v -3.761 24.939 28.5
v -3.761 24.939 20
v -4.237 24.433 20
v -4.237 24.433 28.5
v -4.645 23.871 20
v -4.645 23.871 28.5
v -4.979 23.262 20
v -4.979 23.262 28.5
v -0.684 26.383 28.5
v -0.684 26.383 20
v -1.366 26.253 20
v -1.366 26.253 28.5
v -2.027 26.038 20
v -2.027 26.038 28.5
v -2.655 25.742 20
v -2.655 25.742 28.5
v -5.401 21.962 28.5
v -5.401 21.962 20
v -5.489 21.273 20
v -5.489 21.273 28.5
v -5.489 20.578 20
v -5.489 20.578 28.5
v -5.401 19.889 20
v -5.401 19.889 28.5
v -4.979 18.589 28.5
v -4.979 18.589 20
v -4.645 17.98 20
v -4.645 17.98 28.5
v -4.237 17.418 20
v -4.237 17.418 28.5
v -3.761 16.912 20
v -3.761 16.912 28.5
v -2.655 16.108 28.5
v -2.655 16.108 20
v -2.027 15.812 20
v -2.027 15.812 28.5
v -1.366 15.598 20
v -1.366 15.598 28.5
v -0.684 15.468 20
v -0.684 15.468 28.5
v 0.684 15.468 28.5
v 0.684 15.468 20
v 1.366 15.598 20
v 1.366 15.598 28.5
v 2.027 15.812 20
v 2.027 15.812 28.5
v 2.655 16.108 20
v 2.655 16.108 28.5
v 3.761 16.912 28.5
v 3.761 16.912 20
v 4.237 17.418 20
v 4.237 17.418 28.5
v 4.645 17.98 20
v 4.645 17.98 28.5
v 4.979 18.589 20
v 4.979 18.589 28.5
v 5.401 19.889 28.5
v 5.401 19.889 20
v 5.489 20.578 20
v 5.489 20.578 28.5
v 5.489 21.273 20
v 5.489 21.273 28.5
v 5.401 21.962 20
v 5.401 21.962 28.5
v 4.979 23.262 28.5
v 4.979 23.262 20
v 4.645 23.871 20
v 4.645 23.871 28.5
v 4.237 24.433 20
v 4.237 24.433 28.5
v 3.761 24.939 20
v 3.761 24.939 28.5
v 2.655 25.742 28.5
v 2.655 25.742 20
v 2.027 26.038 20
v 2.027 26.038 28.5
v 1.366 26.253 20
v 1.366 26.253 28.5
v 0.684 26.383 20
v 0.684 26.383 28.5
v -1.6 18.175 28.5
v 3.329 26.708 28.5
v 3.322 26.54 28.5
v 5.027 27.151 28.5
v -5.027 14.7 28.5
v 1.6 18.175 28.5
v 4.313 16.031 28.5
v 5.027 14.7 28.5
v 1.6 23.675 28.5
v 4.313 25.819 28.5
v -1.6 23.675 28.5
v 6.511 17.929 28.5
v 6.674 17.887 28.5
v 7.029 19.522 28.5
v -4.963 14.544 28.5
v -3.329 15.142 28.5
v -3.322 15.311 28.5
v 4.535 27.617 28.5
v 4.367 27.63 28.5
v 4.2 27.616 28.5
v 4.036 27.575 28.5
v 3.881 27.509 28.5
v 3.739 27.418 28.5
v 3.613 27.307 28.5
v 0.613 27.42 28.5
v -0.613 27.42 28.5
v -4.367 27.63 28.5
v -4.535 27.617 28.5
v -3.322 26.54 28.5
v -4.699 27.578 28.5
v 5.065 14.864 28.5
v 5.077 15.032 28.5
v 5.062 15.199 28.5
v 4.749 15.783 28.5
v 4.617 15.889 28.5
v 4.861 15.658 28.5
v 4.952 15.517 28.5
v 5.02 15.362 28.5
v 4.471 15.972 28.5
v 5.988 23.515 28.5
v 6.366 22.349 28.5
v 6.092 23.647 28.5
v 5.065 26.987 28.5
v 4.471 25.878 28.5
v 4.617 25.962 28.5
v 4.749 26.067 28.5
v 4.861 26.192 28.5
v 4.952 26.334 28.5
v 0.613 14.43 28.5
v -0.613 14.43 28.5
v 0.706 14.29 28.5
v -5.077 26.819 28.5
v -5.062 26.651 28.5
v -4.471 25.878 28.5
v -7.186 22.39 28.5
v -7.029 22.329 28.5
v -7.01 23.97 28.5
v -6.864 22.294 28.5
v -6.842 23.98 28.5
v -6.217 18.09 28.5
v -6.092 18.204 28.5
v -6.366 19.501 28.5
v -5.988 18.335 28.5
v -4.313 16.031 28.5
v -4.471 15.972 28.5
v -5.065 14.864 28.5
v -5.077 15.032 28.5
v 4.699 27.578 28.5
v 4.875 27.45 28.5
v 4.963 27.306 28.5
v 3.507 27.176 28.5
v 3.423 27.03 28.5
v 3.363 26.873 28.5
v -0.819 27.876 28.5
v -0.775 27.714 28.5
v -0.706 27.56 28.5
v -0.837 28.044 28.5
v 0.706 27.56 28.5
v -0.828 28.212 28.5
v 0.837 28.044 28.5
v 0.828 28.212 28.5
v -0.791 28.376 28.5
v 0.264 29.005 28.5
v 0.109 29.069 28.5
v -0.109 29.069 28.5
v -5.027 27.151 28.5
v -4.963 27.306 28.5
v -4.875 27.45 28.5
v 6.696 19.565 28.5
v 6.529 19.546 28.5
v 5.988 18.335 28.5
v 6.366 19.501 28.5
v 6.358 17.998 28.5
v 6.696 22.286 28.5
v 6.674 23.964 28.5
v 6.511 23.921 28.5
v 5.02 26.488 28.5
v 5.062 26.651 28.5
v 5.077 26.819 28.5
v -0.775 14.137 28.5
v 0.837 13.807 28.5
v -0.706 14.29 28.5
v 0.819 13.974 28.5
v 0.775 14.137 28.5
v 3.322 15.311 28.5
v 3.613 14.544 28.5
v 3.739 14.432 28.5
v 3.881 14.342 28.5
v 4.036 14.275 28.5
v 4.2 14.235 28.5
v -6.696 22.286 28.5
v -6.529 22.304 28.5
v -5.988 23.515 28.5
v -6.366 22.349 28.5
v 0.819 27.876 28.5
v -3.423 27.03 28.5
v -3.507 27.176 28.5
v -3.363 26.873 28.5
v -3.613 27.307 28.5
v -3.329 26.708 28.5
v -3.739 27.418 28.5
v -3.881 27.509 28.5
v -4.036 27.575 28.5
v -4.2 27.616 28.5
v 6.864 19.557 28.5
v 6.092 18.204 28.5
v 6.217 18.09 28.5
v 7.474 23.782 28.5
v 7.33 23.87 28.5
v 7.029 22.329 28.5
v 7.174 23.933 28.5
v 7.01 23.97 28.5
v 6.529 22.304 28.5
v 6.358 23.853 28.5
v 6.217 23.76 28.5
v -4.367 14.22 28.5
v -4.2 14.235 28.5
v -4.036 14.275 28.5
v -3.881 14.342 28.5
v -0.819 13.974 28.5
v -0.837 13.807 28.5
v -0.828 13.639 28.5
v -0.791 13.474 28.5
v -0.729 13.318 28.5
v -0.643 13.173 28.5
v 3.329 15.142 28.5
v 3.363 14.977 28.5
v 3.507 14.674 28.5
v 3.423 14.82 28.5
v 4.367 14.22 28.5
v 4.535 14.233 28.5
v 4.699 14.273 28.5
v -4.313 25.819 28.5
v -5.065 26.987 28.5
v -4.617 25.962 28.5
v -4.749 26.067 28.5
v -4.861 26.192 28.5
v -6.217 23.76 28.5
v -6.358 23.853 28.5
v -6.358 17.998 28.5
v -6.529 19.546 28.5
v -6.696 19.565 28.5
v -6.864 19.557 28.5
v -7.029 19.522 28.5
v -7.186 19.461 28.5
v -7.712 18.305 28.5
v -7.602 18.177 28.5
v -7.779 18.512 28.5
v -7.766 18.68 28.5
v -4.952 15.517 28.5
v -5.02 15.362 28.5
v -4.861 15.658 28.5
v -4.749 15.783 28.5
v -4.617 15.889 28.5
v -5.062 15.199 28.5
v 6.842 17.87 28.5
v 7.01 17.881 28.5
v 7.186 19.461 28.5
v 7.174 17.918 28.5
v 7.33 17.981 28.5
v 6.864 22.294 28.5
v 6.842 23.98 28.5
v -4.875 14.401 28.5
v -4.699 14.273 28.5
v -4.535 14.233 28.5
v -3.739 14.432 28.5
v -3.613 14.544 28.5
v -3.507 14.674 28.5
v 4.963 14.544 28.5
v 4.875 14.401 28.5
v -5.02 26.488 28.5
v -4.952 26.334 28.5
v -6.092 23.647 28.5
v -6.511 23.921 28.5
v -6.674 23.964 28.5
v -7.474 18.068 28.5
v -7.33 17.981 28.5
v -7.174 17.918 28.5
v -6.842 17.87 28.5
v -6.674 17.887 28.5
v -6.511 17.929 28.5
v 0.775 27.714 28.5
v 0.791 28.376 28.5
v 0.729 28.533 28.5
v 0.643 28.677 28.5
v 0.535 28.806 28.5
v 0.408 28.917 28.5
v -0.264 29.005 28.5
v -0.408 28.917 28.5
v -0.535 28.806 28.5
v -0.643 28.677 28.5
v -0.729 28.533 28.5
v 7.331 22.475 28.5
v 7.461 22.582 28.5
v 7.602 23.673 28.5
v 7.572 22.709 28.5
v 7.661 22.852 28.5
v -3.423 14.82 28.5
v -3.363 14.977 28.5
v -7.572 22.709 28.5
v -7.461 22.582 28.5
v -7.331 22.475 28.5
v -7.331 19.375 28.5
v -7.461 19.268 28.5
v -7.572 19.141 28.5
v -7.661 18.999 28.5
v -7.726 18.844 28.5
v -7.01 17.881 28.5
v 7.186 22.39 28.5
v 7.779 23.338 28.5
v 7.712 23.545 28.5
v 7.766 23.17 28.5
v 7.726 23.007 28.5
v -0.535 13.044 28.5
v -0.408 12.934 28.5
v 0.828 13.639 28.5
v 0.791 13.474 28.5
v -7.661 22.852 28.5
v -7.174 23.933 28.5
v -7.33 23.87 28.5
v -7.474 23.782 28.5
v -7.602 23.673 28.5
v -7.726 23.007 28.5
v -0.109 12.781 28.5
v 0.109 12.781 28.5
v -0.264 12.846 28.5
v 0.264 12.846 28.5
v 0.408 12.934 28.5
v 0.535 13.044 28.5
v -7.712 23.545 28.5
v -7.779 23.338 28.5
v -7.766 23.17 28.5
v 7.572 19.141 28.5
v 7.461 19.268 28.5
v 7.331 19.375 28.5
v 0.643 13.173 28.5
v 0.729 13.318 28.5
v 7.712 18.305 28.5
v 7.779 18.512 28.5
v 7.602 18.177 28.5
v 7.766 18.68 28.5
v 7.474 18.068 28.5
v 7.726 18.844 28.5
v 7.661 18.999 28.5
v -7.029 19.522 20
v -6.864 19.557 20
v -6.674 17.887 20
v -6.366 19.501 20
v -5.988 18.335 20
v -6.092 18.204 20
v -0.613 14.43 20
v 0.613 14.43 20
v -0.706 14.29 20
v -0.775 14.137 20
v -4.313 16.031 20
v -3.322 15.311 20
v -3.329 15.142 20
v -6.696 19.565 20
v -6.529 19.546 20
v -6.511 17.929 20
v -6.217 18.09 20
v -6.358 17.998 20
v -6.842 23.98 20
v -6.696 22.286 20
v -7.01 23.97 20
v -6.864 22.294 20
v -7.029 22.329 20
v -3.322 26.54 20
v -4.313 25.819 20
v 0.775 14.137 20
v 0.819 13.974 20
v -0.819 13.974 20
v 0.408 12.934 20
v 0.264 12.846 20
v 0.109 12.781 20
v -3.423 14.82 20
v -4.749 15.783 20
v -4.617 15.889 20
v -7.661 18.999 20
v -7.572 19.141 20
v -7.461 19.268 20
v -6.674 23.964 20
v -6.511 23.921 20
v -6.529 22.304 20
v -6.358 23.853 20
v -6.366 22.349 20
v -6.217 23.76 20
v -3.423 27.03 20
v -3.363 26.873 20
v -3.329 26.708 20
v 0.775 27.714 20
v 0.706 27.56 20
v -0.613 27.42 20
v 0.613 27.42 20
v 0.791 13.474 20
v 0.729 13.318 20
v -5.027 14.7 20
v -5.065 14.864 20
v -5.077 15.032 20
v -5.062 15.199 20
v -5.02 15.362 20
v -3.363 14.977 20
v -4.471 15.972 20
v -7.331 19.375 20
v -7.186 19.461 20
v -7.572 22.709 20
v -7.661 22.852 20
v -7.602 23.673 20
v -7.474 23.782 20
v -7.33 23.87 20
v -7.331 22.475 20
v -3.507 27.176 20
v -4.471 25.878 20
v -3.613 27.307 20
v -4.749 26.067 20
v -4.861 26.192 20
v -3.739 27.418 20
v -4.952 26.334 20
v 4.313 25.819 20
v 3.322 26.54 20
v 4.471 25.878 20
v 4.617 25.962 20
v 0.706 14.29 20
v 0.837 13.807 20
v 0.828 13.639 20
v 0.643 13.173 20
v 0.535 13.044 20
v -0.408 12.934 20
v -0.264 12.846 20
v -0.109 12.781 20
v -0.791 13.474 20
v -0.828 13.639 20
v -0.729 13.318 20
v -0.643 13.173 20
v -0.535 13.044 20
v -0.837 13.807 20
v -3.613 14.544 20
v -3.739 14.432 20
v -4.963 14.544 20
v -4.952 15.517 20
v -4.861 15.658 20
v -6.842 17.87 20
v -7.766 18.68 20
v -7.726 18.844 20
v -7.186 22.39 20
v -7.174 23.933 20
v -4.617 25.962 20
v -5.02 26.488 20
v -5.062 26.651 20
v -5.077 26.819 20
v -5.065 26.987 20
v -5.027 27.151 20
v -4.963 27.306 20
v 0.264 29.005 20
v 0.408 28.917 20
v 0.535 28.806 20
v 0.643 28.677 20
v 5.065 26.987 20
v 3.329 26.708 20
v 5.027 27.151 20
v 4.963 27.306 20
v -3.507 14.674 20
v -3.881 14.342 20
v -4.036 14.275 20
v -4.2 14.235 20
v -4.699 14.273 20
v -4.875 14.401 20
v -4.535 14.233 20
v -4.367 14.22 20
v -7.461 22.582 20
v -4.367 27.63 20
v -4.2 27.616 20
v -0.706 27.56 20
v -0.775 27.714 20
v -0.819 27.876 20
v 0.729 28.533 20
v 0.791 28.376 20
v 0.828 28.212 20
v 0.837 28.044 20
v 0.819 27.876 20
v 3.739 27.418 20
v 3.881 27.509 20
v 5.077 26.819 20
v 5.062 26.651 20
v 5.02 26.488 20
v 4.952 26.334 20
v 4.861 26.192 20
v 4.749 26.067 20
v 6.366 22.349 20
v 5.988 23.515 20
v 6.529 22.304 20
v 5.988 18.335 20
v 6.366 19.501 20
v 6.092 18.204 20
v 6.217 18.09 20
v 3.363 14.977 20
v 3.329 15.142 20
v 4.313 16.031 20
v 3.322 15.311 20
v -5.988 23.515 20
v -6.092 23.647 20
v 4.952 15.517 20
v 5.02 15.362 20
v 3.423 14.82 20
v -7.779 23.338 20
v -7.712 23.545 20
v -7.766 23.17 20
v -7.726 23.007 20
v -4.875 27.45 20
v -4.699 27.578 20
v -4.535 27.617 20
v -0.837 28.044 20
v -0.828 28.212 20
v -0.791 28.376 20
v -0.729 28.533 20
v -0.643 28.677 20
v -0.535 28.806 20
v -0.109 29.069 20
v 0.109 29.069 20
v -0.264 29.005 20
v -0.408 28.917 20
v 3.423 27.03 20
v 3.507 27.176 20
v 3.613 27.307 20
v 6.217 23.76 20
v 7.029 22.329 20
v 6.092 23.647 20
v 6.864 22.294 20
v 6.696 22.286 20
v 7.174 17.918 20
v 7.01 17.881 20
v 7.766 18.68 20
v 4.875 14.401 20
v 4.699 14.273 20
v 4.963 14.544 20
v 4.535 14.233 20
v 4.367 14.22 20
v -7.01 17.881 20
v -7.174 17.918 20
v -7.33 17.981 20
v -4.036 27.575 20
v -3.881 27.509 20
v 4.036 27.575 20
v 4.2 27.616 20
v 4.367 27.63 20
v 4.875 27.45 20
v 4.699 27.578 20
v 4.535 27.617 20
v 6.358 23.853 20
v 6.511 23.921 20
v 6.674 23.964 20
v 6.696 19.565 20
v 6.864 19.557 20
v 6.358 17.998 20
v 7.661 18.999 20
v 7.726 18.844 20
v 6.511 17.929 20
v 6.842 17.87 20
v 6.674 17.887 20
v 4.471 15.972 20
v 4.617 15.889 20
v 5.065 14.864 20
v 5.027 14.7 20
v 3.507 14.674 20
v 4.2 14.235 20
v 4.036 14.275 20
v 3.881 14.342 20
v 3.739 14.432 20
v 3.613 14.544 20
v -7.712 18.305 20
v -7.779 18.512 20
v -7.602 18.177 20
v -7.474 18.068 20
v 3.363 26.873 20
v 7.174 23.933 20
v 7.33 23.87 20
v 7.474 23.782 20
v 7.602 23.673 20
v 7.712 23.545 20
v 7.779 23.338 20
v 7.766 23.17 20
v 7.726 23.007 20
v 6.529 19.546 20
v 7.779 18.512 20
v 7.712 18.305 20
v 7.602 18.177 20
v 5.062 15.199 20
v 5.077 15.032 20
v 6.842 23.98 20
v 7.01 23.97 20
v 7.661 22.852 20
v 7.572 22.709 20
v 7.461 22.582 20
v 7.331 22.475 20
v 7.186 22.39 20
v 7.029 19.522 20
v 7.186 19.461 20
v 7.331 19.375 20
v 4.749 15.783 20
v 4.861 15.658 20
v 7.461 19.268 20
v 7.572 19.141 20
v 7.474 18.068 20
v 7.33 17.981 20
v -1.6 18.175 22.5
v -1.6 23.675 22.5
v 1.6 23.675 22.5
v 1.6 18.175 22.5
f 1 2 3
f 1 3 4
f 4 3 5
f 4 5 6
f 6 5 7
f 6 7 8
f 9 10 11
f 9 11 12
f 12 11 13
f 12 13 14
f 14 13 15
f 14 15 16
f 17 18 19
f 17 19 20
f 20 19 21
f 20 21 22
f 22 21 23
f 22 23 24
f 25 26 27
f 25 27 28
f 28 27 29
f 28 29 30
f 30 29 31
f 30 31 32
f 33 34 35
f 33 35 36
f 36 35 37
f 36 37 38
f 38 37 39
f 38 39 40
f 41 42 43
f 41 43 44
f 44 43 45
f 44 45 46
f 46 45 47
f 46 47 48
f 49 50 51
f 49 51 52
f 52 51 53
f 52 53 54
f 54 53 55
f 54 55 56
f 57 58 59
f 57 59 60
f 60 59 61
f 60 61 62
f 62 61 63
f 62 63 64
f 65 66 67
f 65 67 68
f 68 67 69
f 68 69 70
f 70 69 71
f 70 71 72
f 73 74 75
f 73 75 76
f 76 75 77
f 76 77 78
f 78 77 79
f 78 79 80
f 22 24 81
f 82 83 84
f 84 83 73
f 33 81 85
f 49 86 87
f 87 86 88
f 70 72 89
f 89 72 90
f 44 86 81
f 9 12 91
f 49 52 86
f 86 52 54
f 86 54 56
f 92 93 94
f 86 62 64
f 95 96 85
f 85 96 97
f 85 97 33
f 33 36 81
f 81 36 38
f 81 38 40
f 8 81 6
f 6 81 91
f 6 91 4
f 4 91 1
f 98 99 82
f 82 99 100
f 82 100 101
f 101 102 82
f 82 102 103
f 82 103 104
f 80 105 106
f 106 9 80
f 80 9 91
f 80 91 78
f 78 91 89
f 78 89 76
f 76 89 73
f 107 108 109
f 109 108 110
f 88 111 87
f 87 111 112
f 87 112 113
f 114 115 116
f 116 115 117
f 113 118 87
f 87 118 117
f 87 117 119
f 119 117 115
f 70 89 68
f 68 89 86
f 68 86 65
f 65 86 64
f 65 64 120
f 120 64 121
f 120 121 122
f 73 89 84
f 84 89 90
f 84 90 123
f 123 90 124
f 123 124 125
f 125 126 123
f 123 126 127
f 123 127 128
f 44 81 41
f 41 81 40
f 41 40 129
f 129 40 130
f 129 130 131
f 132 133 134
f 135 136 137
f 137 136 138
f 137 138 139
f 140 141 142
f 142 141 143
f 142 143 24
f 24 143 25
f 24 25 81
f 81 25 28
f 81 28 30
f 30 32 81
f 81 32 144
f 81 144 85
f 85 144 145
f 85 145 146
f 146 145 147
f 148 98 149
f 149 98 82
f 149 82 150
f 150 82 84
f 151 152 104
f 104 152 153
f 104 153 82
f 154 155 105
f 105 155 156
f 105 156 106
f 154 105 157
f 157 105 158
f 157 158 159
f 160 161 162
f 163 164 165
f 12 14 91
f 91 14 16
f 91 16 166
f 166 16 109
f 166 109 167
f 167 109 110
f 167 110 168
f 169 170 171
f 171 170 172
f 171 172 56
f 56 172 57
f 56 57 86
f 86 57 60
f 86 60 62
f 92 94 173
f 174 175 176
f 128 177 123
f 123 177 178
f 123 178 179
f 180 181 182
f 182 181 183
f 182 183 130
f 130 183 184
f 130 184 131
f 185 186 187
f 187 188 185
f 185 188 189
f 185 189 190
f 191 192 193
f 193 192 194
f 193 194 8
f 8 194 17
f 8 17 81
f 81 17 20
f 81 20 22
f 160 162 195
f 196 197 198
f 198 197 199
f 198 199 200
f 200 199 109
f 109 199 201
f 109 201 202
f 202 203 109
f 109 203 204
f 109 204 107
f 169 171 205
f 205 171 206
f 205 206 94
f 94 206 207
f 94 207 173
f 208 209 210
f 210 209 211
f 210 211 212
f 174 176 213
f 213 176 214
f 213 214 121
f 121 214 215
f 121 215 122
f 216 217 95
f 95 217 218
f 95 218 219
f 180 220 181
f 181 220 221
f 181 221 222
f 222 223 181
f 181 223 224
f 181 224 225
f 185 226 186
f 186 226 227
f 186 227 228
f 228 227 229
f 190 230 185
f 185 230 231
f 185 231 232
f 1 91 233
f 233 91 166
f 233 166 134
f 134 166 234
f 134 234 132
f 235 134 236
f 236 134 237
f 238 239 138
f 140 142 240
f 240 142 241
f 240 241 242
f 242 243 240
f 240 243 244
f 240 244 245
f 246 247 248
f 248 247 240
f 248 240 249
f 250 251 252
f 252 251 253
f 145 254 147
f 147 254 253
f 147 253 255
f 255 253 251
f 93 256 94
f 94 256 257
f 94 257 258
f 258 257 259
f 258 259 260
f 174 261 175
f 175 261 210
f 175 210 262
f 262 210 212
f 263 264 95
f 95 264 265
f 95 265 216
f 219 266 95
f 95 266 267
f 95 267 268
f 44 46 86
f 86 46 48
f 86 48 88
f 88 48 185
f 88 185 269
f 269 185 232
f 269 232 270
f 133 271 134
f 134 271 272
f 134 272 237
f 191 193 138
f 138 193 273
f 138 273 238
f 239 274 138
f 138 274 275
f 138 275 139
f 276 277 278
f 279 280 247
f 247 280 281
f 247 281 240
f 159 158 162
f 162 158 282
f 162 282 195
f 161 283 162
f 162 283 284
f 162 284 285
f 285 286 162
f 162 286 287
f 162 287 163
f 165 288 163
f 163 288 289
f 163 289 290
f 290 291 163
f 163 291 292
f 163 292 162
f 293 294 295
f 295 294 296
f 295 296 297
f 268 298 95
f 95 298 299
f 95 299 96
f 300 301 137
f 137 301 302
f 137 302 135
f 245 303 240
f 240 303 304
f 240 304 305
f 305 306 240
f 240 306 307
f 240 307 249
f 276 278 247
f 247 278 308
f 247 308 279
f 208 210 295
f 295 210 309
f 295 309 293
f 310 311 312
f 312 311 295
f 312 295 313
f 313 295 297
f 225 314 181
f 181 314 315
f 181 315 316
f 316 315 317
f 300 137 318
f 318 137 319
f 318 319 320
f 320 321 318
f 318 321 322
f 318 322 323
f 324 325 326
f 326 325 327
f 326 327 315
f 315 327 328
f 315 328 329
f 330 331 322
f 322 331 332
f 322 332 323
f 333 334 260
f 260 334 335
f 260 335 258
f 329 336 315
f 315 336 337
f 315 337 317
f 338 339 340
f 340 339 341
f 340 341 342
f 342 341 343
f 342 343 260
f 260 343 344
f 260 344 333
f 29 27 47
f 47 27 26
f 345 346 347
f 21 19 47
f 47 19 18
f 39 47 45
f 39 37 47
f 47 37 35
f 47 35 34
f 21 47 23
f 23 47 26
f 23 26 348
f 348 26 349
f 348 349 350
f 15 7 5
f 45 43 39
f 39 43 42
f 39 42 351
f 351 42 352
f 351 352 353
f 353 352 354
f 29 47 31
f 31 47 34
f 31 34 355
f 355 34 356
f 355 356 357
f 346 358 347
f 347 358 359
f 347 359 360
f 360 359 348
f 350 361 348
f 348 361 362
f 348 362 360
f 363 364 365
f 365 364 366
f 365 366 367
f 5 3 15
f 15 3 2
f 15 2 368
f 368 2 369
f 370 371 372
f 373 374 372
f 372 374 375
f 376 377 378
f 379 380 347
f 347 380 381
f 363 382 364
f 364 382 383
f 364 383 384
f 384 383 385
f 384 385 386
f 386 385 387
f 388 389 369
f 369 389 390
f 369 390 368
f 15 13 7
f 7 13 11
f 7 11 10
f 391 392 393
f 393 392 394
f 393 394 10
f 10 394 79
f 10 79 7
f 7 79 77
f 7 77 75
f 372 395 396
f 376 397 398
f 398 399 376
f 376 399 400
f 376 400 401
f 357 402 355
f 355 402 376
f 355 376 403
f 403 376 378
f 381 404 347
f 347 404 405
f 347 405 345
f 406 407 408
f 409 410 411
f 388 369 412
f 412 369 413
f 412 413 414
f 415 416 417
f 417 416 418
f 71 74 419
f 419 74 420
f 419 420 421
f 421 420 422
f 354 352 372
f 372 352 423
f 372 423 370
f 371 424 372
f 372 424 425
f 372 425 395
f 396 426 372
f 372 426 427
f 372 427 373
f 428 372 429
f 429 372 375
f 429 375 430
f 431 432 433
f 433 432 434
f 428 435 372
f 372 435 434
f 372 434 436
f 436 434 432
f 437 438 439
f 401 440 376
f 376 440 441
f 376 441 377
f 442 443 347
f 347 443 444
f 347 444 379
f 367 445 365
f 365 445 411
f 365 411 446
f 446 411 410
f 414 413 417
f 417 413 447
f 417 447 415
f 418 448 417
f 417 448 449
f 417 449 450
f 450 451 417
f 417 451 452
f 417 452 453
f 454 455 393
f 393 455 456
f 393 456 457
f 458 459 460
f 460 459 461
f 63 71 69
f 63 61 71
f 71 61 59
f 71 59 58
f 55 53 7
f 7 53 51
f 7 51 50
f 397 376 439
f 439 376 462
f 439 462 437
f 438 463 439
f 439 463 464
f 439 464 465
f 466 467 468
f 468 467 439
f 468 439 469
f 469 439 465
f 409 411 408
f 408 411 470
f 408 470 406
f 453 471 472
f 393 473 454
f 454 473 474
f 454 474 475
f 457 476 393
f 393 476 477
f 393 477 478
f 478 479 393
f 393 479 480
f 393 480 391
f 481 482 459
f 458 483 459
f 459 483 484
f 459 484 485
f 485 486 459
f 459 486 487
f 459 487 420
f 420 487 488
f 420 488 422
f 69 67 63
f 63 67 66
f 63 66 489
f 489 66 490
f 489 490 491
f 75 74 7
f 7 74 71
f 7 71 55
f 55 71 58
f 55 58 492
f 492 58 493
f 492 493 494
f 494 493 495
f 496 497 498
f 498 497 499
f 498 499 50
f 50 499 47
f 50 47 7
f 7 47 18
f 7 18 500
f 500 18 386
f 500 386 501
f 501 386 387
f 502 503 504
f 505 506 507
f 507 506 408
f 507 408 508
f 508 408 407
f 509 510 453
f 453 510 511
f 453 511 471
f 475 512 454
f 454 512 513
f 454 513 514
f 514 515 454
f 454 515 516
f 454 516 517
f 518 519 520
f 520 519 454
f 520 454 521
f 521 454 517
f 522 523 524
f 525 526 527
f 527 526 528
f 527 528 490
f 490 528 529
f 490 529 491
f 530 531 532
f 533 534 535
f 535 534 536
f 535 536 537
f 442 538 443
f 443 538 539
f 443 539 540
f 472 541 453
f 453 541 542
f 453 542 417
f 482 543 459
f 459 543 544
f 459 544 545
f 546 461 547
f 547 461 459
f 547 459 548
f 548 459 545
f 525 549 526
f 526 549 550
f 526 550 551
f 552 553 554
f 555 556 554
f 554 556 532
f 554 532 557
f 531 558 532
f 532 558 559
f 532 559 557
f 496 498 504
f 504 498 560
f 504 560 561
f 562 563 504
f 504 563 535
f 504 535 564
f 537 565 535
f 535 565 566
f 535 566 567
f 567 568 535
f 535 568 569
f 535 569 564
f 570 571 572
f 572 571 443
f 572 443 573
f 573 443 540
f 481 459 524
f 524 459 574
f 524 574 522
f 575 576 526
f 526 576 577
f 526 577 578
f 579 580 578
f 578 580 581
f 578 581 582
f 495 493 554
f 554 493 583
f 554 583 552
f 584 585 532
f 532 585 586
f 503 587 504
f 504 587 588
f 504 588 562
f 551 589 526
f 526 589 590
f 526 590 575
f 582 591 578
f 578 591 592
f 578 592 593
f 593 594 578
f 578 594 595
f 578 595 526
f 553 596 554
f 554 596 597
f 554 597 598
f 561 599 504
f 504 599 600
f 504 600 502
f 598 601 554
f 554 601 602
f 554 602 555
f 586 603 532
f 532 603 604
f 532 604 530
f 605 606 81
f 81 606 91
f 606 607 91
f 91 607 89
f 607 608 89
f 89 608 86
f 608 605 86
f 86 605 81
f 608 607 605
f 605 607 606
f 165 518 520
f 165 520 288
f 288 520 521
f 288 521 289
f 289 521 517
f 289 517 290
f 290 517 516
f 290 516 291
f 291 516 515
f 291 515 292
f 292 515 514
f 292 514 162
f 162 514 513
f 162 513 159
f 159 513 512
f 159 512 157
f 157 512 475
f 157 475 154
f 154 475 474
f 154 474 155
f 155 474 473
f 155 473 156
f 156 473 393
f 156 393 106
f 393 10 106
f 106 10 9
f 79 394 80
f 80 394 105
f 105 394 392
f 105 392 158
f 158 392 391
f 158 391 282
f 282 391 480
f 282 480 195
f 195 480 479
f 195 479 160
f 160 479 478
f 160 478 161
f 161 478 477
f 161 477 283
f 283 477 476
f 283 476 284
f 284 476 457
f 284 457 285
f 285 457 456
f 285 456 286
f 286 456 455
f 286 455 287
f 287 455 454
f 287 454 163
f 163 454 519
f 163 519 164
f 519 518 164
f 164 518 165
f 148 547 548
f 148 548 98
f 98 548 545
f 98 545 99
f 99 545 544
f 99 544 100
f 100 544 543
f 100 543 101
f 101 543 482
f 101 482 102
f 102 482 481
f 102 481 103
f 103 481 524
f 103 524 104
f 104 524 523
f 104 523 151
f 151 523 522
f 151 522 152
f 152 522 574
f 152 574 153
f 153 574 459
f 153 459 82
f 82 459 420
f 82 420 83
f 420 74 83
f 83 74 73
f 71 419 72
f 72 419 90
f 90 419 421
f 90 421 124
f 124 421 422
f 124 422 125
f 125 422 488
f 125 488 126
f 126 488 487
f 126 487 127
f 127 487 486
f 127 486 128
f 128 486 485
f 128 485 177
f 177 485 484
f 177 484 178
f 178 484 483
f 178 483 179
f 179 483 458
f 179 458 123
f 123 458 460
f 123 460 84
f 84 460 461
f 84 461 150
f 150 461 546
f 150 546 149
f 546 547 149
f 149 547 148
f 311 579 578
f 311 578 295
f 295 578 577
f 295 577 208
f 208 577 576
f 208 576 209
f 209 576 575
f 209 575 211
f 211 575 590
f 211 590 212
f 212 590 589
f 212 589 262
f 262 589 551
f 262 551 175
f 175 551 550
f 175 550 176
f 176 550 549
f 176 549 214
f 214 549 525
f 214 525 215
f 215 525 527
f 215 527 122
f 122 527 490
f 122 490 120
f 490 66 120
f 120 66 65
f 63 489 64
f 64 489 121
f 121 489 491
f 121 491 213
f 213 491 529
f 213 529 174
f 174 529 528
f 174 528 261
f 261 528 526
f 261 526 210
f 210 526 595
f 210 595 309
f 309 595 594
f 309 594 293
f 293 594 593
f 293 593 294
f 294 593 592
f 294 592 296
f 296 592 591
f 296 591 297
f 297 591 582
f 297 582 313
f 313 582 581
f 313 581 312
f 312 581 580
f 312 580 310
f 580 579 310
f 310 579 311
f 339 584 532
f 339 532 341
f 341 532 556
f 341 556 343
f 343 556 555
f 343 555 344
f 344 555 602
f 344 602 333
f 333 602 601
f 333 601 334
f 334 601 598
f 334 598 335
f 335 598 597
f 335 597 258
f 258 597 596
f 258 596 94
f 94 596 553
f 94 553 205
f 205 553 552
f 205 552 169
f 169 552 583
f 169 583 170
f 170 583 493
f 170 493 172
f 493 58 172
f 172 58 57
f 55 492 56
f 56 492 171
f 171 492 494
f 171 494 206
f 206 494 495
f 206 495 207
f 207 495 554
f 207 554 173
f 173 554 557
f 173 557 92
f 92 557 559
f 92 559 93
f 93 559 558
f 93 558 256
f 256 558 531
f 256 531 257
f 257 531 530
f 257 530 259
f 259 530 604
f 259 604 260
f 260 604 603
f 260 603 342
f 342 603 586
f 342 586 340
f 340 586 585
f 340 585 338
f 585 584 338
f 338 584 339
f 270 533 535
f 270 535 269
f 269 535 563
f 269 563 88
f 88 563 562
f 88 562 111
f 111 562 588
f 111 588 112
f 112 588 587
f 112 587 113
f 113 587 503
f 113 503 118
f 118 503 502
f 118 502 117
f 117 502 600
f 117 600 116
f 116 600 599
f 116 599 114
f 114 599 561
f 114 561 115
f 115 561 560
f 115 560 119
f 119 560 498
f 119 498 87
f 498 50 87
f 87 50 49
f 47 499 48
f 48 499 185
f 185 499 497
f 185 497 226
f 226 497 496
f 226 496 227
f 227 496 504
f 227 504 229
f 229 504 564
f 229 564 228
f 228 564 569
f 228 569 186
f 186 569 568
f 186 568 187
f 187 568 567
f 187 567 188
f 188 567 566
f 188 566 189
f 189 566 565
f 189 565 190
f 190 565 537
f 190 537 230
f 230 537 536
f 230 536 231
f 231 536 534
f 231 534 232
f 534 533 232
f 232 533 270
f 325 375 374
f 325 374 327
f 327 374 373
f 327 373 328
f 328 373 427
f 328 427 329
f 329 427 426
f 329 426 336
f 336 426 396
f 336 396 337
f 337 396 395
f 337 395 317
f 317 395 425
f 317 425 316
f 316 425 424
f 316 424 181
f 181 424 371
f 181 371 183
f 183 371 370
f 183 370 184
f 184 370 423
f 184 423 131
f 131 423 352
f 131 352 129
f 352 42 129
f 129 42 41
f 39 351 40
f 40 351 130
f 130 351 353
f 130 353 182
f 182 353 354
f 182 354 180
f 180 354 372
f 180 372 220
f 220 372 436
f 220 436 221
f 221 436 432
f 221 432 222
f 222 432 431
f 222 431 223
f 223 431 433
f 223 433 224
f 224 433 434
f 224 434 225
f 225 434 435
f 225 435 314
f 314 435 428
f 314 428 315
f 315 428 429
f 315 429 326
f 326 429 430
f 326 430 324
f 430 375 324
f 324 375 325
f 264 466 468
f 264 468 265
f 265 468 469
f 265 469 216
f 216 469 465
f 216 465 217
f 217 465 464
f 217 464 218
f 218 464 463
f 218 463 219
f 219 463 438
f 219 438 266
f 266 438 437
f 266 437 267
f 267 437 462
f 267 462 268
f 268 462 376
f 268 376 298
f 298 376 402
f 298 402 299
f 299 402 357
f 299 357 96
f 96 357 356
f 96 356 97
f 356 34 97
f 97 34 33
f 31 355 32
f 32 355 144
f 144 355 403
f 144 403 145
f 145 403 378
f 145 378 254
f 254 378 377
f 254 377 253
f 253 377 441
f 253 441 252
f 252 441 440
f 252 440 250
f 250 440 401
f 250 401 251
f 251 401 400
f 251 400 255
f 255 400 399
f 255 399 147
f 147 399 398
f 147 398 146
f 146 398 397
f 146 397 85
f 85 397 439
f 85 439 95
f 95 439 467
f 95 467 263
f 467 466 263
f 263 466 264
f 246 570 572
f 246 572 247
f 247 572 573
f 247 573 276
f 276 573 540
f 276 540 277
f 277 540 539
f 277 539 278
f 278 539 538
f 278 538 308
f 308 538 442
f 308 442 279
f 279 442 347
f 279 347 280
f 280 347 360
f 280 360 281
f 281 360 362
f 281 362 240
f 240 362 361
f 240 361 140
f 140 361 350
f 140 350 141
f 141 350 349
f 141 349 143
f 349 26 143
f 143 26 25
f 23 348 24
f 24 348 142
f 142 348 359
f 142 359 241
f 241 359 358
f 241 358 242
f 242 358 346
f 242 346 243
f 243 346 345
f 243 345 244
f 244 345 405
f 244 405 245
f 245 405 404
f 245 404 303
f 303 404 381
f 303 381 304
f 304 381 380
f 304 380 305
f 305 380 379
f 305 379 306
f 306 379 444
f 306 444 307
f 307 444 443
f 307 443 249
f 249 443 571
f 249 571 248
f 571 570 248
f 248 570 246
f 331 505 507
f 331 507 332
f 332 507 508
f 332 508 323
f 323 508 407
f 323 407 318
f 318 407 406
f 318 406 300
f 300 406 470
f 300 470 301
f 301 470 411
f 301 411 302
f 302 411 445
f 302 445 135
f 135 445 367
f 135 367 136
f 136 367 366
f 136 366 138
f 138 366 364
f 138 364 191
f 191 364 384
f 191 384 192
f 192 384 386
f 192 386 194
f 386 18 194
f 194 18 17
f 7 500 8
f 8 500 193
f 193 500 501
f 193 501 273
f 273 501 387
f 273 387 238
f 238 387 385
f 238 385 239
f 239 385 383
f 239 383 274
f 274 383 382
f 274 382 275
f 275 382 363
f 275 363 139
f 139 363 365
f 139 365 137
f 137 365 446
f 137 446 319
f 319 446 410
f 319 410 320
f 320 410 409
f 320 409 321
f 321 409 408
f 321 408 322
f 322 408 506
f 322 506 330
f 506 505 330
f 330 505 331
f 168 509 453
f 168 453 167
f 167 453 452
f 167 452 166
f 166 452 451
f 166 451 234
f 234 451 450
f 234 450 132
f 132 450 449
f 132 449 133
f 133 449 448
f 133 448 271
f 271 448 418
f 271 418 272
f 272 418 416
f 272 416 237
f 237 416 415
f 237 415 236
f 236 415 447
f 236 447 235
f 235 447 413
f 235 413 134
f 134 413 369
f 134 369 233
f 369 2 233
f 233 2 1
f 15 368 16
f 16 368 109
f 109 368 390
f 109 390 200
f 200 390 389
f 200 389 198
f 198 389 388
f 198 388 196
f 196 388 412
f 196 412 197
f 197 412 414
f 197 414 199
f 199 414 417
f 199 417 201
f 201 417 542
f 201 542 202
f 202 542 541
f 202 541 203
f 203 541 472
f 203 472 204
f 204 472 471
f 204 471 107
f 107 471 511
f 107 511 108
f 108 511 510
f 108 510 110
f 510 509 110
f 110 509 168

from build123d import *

# Parameters (mm, degrees)
SKETCH1_R           = 5.5
BOSS_EXTRUDE2_DEPTH = 8.5
SKETCH3_W           = 3.2
SKETCH3_H           = 5.5
CUT_EXTRUDE1_DEPTH  = 6
BOSS_EXTRUDE3_DEPTH = 8.5


with BuildPart() as part:
    # Sketch1 → Boss-Extrude2 (new body)
    with BuildSketch(Plane.XY.offset(20)):
        with Locations((0, 20.92523633)):
            Circle(SKETCH1_R)
    extrude(amount=BOSS_EXTRUDE2_DEPTH)

    # Sketch3 → Cut-Extrude1 (cut)
    with BuildSketch(Plane.XY.offset(28.5)):
        with Locations((0, 20.92523633)):
            Rectangle(SKETCH3_W, SKETCH3_H)
    extrude(amount=-CUT_EXTRUDE1_DEPTH, mode=Mode.SUBTRACT)

    # Sketch4 → Boss-Extrude3 (add)
    with BuildSketch(Plane.XY.offset(20)):
        with BuildLine():
            Line((-0.612805484, 27.420090848), (-0.683508693, 26.382599784))
            ThreePointArc((-0.683508693, 26.382599784), (0, 26.42523633), (0.683508693, 26.382599784))
            Line((0.683508693, 26.382599784), (0.612805484, 27.420090848))
            ThreePointArc((0.612805484, 27.420090848), (0.791416866, 28.376215286), (0.108813843, 29.069128758))
            ThreePointArc((0.108813843, 29.069128758), (0, 29.072382819), (-0.108813843, 29.069128758))
            ThreePointArc((-0.108813843, 29.069128758), (-0.791416866, 28.376215286), (-0.612805484, 27.420090848))
        make_face()
        with BuildLine():
            Line((4.313349752, 25.819485985), (3.760727903, 24.938579779))
            ThreePointArc((3.760727903, 24.938579779), (3.232818888, 25.374829799), (2.654787606, 25.742092438))
            Line((2.654787606, 25.742092438), (3.32180965, 26.539882037))
            ThreePointArc((3.32180965, 26.539882037), (3.739305851, 27.418388093), (4.698827617, 27.577742877))
            ThreePointArc((4.698827617, 27.577742877), (4.788772554, 27.516416295), (4.874892114, 27.449824532))
            ThreePointArc((4.874892114, 27.449824532), (5.01984524, 26.488021768), (4.313349752, 25.819485985))
        make_face()
        with BuildLine():
            Line((6.36634102, 22.349444103), (5.401476877, 21.961598985))
            ThreePointArc((5.401476877, 21.961598985), (5.23081084, 22.624829799), (4.979045272, 23.261709779))
            Line((4.979045272, 23.261709779), (5.987606403, 23.515069401))
            ThreePointArc((5.987606403, 23.515069401), (6.841740827, 23.98039762), (7.711676635, 23.545325605))
            ThreePointArc((7.711676635, 23.545325605), (7.748396757, 23.442843051), (7.778927288, 23.338349376))
            ThreePointArc((7.778927288, 23.338349376), (7.33086335, 22.475033284), (6.36634102, 22.349444103))
        make_face()
        with BuildLine():
            Line((5.987606403, 18.335403259), (4.979045272, 18.588762882))
            ThreePointArc((4.979045272, 18.588762882), (5.23081084, 19.225642861), (5.401476877, 19.888873675))
            Line((5.401476877, 19.888873675), (6.36634102, 19.501028557))
            ThreePointArc((6.36634102, 19.501028557), (7.33086335, 19.375439376), (7.778927288, 18.512123284))
            ThreePointArc((7.778927288, 18.512123284), (7.748396757, 18.407629609), (7.711676635, 18.305147055))
            ThreePointArc((7.711676635, 18.305147055), (6.841740827, 17.87007504), (5.987606403, 18.335403259))
        make_face()
        with BuildLine():
            Line((3.32180965, 15.310590623), (2.654787606, 16.108380222))
            ThreePointArc((2.654787606, 16.108380222), (3.232818888, 16.475642861), (3.760727903, 16.911892881))
            Line((3.760727903, 16.911892881), (4.313349752, 16.030986675))
            ThreePointArc((4.313349752, 16.030986675), (5.01984524, 15.362450892), (4.874892114, 14.400648128))
            ThreePointArc((4.874892114, 14.400648128), (4.788772554, 14.334056365), (4.698827617, 14.272729783))
            ThreePointArc((4.698827617, 14.272729783), (3.739305851, 14.432084567), (3.32180965, 15.310590623))
        make_face()
        with BuildLine():
            Line((-0.612805484, 14.430381812), (-0.683508693, 15.467872876))
            ThreePointArc((-0.683508693, 15.467872876), (0, 15.42523633), (0.683508693, 15.467872876))
            Line((0.683508693, 15.467872876), (0.612805484, 14.430381812))
            ThreePointArc((0.612805484, 14.430381812), (0.791416866, 13.474257374), (0.108813843, 12.781343902))
            ThreePointArc((0.108813843, 12.781343902), (0, 12.778089841), (-0.108813843, 12.781343902))
            ThreePointArc((-0.108813843, 12.781343902), (-0.791416866, 13.474257374), (-0.612805484, 14.430381812))
        make_face()
        with BuildLine():
            Line((-4.313349752, 16.030986675), (-3.760727903, 16.911892881))
            ThreePointArc((-3.760727903, 16.911892881), (-3.232818888, 16.475642861), (-2.654787606, 16.108380222))
            Line((-2.654787606, 16.108380222), (-3.32180965, 15.310590623))
            ThreePointArc((-3.32180965, 15.310590623), (-3.739305851, 14.432084567), (-4.698827617, 14.272729783))
            ThreePointArc((-4.698827617, 14.272729783), (-4.788772554, 14.334056365), (-4.874892114, 14.400648128))
            ThreePointArc((-4.874892114, 14.400648128), (-5.01984524, 15.362450892), (-4.313349752, 16.030986675))
        make_face()
        with BuildLine():
            Line((-6.36634102, 19.501028557), (-5.401476877, 19.888873675))
            ThreePointArc((-5.401476877, 19.888873675), (-5.23081084, 19.225642861), (-4.979045272, 18.588762882))
            Line((-4.979045272, 18.588762882), (-5.987606403, 18.335403259))
            ThreePointArc((-5.987606403, 18.335403259), (-6.841740827, 17.87007504), (-7.711676635, 18.305147055))
            ThreePointArc((-7.711676635, 18.305147055), (-7.748396757, 18.407629609), (-7.778927288, 18.512123284))
            ThreePointArc((-7.778927288, 18.512123284), (-7.33086335, 19.375439376), (-6.36634102, 19.501028557))
        make_face()
        with BuildLine():
            Line((-5.987606403, 23.515069401), (-4.979045272, 23.261709779))
            ThreePointArc((-4.979045272, 23.261709779), (-5.23081084, 22.624829799), (-5.401476877, 21.961598985))
            Line((-5.401476877, 21.961598985), (-6.36634102, 22.349444103))
            ThreePointArc((-6.36634102, 22.349444103), (-7.33086335, 22.475033284), (-7.778927288, 23.338349376))
            ThreePointArc((-7.778927288, 23.338349376), (-7.748396757, 23.442843051), (-7.711676635, 23.545325605))
            ThreePointArc((-7.711676635, 23.545325605), (-6.841740827, 23.98039762), (-5.987606403, 23.515069401))
        make_face()
        with BuildLine():
            Line((-3.32180965, 26.539882037), (-2.654787606, 25.742092438))
            ThreePointArc((-2.654787606, 25.742092438), (-3.232818888, 25.374829799), (-3.760727903, 24.938579779))
            Line((-3.760727903, 24.938579779), (-4.313349752, 25.819485985))
            ThreePointArc((-4.313349752, 25.819485985), (-5.01984524, 26.488021768), (-4.874892114, 27.449824532))
            ThreePointArc((-4.874892114, 27.449824532), (-4.788772554, 27.516416295), (-4.698827617, 27.577742877))
            ThreePointArc((-4.698827617, 27.577742877), (-3.739305851, 27.418388093), (-3.32180965, 26.539882037))
        make_face()
    extrude(amount=BOSS_EXTRUDE3_DEPTH)


solid = part.part
